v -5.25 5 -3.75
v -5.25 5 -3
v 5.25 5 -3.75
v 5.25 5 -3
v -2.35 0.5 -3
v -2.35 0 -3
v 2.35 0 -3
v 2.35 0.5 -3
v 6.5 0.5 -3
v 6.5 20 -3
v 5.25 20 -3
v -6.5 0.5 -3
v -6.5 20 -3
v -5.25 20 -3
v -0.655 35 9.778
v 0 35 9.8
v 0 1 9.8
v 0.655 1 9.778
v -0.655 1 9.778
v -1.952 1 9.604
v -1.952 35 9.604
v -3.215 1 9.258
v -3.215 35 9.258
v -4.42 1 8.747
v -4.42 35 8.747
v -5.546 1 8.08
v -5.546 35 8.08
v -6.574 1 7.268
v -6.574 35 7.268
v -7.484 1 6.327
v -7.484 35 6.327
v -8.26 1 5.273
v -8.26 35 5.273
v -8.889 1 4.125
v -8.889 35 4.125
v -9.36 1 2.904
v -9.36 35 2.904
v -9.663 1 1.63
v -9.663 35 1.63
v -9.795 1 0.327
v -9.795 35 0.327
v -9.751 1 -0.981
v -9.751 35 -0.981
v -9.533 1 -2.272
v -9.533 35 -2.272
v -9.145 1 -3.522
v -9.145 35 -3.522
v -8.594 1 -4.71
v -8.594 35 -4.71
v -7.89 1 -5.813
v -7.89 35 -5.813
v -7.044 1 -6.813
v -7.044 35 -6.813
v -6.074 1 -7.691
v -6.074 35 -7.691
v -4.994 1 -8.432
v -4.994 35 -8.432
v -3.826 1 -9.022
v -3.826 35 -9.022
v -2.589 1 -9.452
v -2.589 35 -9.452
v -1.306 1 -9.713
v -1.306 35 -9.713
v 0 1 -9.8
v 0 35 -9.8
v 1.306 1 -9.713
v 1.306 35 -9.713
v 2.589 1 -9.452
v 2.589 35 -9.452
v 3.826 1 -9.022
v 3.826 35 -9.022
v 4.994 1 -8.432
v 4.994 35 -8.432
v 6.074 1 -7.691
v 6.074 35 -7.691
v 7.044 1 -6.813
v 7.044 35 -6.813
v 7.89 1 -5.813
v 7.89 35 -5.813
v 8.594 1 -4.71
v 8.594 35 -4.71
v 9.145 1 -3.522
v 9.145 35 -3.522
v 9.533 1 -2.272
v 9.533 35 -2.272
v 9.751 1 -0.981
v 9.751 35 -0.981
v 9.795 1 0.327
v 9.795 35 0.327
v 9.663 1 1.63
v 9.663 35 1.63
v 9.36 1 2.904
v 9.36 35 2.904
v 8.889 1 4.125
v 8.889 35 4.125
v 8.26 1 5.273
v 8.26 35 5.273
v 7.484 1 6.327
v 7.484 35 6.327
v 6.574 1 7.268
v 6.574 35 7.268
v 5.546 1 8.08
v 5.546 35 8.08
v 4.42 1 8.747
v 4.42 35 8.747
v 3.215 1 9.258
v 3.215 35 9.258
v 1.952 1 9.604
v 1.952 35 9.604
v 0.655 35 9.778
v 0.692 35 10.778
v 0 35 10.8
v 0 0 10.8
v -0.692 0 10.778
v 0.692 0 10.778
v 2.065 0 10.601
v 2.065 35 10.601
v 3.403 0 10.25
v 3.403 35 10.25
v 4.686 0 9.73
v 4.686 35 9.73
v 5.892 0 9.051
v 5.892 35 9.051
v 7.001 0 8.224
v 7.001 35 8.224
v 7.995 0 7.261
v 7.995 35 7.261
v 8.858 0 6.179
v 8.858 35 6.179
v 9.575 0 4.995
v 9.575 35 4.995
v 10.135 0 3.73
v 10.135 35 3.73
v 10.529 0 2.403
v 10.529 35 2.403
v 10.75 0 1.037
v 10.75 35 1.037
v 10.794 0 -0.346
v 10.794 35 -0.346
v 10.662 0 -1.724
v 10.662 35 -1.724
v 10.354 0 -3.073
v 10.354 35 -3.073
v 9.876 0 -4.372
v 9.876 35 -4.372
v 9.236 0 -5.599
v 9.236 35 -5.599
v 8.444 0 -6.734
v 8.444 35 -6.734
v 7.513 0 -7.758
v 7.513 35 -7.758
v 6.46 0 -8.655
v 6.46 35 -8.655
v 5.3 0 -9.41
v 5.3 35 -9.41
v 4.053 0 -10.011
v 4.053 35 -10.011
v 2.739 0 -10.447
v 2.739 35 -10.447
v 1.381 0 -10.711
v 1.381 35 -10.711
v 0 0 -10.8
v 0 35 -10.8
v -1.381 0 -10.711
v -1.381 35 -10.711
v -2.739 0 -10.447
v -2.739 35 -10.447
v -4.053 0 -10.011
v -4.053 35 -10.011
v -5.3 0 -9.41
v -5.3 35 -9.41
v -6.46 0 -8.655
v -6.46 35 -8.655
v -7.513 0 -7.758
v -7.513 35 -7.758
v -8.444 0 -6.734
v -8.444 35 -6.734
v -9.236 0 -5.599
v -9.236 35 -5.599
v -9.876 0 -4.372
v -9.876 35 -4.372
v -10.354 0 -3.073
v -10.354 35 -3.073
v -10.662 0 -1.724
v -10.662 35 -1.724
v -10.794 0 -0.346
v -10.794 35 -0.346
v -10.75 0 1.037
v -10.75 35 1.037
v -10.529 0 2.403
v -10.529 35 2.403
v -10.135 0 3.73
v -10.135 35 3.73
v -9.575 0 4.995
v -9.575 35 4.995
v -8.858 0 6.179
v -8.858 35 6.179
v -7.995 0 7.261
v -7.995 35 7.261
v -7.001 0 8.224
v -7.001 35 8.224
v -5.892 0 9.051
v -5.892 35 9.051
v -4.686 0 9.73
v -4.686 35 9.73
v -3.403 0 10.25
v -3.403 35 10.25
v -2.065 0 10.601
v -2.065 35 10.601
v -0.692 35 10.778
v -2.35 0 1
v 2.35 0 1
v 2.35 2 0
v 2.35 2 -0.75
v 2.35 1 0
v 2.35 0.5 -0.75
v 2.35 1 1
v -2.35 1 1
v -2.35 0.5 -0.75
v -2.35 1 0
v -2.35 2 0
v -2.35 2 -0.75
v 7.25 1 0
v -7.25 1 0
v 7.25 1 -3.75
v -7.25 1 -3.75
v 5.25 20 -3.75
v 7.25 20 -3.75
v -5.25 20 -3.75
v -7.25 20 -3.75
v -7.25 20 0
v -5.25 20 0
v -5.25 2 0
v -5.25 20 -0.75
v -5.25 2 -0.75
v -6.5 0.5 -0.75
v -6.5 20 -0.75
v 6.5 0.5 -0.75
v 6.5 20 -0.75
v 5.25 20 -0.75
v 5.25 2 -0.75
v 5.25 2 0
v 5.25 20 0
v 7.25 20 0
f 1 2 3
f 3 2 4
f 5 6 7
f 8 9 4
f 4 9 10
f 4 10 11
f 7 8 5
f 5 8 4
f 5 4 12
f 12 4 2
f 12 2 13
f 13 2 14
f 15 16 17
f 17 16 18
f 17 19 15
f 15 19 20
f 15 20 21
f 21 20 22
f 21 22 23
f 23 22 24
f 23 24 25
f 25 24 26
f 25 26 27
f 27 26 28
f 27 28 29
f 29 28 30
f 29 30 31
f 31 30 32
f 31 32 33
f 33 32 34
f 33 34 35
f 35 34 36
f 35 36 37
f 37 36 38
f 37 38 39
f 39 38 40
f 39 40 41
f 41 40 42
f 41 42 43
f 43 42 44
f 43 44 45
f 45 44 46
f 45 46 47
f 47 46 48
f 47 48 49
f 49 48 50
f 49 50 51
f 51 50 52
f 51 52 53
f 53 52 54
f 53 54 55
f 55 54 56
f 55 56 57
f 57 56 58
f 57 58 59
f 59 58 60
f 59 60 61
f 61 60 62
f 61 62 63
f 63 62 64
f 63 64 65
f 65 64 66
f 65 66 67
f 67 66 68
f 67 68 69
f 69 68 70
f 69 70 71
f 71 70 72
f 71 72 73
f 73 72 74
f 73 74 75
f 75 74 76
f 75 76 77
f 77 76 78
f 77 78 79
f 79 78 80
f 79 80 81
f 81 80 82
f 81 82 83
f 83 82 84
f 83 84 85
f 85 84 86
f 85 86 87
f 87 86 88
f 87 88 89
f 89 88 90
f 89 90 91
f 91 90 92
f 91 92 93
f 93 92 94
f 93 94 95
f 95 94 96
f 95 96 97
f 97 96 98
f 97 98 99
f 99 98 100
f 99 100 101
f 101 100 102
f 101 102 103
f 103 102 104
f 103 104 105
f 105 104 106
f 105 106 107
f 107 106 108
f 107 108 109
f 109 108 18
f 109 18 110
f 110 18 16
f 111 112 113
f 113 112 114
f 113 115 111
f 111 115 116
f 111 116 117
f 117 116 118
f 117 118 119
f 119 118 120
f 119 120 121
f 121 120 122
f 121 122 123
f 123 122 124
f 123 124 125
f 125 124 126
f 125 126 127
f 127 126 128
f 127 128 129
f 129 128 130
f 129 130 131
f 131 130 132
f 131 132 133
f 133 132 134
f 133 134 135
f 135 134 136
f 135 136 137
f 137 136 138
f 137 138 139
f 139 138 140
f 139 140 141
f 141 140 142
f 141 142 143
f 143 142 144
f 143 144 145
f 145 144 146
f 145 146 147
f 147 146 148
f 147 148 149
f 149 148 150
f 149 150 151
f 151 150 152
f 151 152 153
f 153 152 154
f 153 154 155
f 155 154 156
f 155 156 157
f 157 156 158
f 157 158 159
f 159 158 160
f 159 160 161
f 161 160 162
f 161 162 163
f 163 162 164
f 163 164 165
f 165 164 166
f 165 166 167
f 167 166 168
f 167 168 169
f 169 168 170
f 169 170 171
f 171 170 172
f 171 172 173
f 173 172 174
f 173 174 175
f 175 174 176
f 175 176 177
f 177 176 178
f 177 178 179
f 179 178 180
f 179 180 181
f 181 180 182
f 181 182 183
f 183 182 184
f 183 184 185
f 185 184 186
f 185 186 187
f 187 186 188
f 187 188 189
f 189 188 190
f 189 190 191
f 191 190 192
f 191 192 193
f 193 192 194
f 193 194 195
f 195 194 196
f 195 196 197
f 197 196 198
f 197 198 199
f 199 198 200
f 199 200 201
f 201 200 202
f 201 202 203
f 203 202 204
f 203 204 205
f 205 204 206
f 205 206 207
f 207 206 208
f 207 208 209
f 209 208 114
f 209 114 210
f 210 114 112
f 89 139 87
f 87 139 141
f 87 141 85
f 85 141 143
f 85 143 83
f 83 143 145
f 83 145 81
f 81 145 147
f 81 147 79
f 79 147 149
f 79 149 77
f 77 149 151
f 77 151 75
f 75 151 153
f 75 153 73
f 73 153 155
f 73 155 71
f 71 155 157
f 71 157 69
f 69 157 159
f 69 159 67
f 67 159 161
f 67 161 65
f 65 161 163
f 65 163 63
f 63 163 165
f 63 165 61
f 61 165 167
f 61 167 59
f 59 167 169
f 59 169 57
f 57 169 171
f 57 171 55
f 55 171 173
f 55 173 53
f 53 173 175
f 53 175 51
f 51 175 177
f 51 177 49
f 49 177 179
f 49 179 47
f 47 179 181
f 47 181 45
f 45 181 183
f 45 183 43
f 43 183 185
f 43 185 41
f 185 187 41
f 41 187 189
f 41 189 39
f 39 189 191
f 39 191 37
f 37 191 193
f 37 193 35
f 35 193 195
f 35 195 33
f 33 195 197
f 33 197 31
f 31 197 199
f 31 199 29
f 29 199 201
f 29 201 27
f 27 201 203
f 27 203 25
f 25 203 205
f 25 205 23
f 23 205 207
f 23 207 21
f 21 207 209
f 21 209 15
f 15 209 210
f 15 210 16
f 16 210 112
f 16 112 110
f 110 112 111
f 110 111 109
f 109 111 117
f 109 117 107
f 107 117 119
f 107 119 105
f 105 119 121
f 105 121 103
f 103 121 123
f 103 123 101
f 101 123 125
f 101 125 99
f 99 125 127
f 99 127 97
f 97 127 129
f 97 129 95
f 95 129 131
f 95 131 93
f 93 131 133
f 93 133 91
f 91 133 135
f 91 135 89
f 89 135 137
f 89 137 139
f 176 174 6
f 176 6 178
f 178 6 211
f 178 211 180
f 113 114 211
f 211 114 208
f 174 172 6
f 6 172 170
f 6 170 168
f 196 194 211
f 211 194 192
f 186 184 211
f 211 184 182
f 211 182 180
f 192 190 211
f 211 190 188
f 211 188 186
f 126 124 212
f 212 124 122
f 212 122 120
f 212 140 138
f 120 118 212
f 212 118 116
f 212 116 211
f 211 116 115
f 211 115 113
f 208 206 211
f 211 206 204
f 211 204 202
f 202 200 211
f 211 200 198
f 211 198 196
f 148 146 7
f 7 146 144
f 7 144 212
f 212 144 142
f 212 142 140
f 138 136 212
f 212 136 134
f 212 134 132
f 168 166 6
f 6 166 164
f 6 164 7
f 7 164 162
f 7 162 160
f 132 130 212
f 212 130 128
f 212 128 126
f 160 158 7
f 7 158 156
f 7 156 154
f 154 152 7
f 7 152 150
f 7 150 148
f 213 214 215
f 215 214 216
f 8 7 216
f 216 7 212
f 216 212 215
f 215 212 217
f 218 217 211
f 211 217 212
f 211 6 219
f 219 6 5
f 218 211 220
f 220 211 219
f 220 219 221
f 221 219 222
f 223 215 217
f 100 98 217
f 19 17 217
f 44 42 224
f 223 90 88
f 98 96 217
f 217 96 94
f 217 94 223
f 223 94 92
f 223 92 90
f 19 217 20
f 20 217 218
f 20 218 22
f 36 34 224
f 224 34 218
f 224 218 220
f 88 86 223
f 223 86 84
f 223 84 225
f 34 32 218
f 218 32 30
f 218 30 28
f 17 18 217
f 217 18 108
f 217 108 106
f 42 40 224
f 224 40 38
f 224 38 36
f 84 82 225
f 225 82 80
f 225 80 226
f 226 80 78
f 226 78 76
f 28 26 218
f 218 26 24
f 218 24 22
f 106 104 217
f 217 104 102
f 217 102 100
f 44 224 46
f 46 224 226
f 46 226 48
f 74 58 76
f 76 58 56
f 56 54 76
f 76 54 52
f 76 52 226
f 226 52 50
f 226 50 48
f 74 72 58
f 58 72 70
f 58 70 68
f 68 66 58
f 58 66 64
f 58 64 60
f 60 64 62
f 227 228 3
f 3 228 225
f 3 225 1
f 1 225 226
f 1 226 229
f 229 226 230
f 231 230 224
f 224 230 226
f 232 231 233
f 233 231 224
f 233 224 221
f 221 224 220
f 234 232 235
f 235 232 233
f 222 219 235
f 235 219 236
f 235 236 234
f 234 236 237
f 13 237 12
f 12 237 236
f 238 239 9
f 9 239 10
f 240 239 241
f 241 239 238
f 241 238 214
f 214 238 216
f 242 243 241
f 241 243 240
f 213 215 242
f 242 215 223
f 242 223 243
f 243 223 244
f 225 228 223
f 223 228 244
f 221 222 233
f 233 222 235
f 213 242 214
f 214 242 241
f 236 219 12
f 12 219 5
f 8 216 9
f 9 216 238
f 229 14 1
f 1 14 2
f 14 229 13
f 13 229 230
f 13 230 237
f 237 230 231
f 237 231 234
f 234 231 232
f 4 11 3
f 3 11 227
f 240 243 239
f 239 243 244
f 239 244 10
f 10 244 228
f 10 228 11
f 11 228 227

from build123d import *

# Parameters (mm, degrees)
SKETCH1_R            = 10.8
SKETCH1_R_2          = 9.8
BOSS_EXTRUDE7_DEPTH  = 35
SKETCH1_10_R         = 9.8
BOSS_EXTRUDE8_DEPTH  = 1
BOSS_EXTRUDE9_DEPTH  = 5
SKETCH1_13_W         = 2.9
SKETCH1_13_H         = 0.75
BOSS_EXTRUDE10_DEPTH = 2
SKETCH1_14_W         = 4.15
SKETCH1_14_H         = 2.25
BOSS_EXTRUDE11_DEPTH = 0.5
BOSS_EXTRUDE12_DEPTH = 20


with BuildPart() as part:
    # Sketch1 → Boss-Extrude7 (new body)
    with BuildSketch(Plane(origin=(0, 0, 0), x_dir=(1, 0, 0), z_dir=(0, 1, 0))):
        Circle(SKETCH1_R)
        Circle(SKETCH1_R_2, mode=Mode.SUBTRACT)
    extrude(amount=BOSS_EXTRUDE7_DEPTH)

    # Sketch1<10> → Boss-Extrude8 (add)
    with BuildSketch(Plane(origin=(0, 0, 0), x_dir=(1, 0, 0), z_dir=(0, 1, 0))):
        Circle(SKETCH1_10_R)
        Polygon((-2.35, 0), (-5.25, 0), (-7.25, 0), (-7.25, 3.75), (-5.25, 3.75), (5.25, 3.75), (7.25, 3.75), (7.25, 0), (5.25, 0), (2.35, 0), (2.35, -1), (-2.35, -1), align=None, mode=Mode.SUBTRACT)
    extrude(amount=BOSS_EXTRUDE8_DEPTH)

    # Sketch1<12> → Boss-Extrude9 (add)
    with BuildSketch(Plane(origin=(0, 0, 0), x_dir=(1, 0, 0), z_dir=(0, 1, 0))):
        Polygon((-5.25, 0), (-5.25, 0.75), (-6.5, 0.75), (-6.5, 3), (6.5, 3), (6.5, 0.75), (5.25, 0.75), (5.25, 0), (7.25, 0), (7.25, 3.75), (-7.25, 3.75), (-7.25, 0), align=None)
    extrude(amount=BOSS_EXTRUDE9_DEPTH)

    # Sketch1<13> → Boss-Extrude10 (add)
    with BuildSketch(Plane(origin=(0, 0, 0), x_dir=(1, 0, 0), z_dir=(0, 1, 0))):
        with Locations((-3.8, 0.375)):
            Rectangle(SKETCH1_13_W, SKETCH1_13_H)
        with Locations((3.8, 0.375)):
            Rectangle(SKETCH1_13_W, SKETCH1_13_H)
    extrude(amount=BOSS_EXTRUDE10_DEPTH)

    # Sketch1<14> → Boss-Extrude11 (add)
    with BuildSketch(Plane(origin=(0, 0, 0), x_dir=(1, 0, 0), z_dir=(0, 1, 0))):
        with Locations((-4.425, 1.875)):
            Rectangle(SKETCH1_14_W, SKETCH1_14_H)
        with Locations((4.425, 1.875)):
            Rectangle(SKETCH1_14_W, SKETCH1_14_H)
    extrude(amount=BOSS_EXTRUDE11_DEPTH)

    # Sketch1<15> → Boss-Extrude12 (add)
    with BuildSketch(Plane(origin=(0, 0, 0), x_dir=(1, 0, 0), z_dir=(0, 1, 0))):
        Polygon((-5.25, 0), (-5.25, 0.75), (-6.5, 0.75), (-6.5, 3), (-5.25, 3), (-5.25, 3.75), (-7.25, 3.75), (-7.25, 0), align=None)
        Polygon((5.25, 3.75), (5.25, 3), (6.5, 3), (6.5, 0.75), (5.25, 0.75), (5.25, 0), (7.25, 0), (7.25, 3.75), align=None)
    extrude(amount=BOSS_EXTRUDE12_DEPTH)


solid = part.part
